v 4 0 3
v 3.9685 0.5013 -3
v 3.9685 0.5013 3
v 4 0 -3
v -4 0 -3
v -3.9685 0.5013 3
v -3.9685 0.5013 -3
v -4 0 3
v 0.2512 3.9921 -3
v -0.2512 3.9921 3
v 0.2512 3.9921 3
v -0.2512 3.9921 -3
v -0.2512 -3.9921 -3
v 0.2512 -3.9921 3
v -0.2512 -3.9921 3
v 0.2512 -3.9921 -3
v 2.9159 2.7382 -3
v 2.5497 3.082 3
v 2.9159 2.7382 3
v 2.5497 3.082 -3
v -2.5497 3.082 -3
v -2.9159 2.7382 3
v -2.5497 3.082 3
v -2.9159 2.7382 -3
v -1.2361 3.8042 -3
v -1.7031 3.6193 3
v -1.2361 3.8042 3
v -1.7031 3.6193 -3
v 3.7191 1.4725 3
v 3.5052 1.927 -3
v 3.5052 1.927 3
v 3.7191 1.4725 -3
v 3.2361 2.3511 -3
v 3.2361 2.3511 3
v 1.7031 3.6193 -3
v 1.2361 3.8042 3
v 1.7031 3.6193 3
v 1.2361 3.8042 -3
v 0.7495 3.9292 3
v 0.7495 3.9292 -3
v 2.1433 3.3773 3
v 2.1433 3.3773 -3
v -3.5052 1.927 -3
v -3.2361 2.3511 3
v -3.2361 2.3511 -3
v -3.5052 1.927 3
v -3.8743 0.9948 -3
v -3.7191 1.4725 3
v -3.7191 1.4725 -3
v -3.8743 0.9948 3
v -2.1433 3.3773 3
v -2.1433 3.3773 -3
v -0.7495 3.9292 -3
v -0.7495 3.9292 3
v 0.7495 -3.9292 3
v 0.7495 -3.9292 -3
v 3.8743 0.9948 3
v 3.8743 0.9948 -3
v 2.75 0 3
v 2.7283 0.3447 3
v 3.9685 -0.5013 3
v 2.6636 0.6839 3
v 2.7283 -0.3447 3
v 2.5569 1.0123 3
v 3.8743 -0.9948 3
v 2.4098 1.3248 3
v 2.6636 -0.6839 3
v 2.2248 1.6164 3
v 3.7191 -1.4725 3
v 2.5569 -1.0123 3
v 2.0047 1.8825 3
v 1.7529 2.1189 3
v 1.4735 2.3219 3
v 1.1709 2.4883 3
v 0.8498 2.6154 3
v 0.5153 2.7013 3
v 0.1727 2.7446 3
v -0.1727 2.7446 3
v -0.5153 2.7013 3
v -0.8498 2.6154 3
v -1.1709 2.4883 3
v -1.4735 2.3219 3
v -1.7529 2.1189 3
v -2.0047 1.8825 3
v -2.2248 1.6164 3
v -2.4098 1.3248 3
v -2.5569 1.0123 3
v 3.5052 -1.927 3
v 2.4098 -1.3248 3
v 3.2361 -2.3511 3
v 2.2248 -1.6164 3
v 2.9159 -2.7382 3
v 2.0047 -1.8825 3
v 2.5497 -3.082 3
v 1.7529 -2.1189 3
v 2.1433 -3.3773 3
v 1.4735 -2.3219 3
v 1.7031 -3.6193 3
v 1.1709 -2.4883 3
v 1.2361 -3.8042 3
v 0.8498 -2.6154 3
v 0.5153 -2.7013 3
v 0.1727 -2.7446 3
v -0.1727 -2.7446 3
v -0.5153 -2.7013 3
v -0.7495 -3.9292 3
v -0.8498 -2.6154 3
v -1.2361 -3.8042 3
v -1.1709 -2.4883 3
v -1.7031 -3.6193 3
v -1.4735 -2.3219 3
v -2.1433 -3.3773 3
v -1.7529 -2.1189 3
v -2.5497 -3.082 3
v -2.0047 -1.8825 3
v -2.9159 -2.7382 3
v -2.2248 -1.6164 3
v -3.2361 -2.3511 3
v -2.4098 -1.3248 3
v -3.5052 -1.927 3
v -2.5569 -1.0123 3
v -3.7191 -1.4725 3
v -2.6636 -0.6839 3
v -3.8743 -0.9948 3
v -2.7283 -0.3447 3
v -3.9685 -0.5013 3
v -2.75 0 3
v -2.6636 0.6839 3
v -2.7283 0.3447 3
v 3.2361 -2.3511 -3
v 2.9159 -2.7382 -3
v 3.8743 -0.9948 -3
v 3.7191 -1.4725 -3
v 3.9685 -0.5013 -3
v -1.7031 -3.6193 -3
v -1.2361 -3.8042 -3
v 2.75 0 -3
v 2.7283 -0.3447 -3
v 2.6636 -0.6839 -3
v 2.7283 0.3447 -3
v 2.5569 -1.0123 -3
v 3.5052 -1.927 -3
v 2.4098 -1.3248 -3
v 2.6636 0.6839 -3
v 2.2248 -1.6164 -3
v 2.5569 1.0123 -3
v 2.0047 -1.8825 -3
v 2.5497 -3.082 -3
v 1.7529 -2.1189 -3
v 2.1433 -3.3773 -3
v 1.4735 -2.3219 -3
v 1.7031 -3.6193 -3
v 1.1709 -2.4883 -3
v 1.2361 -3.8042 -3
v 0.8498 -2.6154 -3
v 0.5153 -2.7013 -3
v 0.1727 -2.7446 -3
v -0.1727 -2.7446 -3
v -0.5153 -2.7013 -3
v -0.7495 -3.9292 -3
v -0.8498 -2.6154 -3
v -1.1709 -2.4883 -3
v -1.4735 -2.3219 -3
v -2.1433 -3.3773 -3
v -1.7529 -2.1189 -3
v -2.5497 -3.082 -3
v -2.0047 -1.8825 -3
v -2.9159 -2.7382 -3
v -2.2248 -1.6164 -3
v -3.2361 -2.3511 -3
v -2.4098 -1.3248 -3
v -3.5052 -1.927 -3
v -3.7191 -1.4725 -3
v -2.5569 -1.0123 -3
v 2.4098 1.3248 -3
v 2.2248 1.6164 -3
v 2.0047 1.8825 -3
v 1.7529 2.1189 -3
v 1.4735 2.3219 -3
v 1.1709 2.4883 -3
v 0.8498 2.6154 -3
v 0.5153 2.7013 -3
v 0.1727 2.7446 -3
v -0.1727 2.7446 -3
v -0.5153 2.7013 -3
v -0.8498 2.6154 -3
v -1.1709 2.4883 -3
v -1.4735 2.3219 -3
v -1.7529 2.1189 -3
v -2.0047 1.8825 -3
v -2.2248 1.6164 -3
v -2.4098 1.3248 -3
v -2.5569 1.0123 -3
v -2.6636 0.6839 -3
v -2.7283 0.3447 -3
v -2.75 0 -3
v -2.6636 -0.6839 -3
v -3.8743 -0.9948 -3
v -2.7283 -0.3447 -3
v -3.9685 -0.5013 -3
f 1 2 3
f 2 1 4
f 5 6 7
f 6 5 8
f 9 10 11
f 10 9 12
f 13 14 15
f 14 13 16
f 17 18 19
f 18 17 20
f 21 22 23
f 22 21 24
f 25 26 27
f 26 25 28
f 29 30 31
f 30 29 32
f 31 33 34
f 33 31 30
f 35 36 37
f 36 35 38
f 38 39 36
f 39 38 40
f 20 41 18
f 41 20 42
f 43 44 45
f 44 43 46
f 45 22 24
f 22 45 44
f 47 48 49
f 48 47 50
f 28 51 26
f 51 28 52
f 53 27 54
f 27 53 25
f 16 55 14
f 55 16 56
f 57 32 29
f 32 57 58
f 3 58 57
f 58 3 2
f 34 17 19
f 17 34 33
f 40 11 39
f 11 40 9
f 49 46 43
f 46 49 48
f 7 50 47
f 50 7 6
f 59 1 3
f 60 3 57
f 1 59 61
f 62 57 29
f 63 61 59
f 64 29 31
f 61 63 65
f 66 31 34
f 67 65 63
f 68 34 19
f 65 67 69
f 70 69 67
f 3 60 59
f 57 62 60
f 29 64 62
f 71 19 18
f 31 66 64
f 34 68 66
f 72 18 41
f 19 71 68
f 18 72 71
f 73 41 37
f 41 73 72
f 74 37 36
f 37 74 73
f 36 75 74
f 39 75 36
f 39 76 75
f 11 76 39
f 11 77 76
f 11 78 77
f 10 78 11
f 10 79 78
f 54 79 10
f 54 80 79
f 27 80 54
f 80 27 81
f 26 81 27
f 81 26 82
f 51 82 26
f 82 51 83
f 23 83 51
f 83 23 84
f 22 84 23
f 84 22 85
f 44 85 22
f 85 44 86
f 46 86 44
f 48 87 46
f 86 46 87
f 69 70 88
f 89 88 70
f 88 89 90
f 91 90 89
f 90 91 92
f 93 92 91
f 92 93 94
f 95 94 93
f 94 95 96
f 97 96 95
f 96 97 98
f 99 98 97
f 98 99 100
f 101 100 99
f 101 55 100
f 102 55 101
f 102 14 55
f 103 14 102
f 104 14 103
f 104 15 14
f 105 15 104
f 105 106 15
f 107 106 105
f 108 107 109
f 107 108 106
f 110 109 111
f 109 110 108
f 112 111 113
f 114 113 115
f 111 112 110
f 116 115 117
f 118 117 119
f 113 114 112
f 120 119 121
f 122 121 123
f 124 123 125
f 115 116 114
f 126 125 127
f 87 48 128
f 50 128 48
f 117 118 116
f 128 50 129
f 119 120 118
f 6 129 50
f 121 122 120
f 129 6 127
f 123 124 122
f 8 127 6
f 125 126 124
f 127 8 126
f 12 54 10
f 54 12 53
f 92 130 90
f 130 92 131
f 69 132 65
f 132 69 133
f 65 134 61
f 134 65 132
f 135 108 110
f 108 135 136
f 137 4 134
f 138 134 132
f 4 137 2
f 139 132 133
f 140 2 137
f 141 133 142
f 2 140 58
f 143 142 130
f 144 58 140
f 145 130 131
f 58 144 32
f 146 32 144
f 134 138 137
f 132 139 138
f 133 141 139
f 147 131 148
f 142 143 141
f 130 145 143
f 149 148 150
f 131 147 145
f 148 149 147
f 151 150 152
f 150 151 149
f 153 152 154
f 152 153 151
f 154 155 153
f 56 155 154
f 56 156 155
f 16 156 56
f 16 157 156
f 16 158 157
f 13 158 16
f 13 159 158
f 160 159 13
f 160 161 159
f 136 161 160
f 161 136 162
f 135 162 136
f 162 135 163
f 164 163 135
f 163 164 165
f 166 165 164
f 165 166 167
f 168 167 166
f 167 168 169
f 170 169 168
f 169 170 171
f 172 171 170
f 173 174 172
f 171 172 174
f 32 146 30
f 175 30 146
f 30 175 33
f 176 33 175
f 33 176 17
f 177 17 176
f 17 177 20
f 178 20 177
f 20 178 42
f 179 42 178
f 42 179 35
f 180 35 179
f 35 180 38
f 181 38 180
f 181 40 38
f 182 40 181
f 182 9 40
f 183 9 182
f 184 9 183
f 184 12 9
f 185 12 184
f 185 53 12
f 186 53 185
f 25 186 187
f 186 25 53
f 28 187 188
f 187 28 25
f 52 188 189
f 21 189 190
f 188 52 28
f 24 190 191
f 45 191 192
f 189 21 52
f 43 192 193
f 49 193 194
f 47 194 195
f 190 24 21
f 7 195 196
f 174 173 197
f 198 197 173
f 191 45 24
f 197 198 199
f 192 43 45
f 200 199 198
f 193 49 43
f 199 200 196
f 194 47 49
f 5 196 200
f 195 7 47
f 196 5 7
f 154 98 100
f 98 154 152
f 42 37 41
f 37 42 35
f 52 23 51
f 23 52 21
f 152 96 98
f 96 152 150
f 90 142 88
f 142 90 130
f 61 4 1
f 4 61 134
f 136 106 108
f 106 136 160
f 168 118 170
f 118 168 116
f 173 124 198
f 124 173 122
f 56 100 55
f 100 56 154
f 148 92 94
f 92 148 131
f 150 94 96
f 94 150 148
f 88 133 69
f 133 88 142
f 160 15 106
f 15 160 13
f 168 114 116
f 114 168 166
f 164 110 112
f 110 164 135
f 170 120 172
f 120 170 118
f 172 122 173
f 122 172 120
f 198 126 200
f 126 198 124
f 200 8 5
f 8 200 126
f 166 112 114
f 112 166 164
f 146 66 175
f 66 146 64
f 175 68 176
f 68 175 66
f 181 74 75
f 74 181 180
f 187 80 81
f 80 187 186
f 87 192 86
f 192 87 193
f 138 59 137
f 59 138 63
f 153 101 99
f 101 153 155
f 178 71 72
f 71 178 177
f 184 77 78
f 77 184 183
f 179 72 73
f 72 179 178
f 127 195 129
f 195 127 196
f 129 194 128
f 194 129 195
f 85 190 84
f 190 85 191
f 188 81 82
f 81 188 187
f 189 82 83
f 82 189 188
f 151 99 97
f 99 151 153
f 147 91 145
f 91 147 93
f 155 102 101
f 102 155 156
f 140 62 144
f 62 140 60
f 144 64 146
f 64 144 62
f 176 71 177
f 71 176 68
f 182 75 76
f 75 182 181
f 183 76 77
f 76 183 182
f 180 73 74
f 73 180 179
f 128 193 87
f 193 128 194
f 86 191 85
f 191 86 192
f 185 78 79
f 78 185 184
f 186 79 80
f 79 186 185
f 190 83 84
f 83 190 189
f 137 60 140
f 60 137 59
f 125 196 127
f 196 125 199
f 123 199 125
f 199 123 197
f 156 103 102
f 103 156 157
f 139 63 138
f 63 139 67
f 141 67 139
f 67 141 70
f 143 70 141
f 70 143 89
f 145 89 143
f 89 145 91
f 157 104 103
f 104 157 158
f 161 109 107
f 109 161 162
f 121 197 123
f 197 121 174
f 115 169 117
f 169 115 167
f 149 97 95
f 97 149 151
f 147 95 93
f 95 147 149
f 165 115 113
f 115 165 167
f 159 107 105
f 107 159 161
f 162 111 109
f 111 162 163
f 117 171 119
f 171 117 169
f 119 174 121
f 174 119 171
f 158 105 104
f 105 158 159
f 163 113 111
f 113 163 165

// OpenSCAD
$fn = 50;


difference() {
	union() {
		translate(v = [0, 0, -3.0000000000]) {
			cylinder(h = 6, r = 4.0000000000);
		}
	}
	union() {
		translate(v = [0, 0, -100.0000000000]) {
			cylinder(h = 200, r = 2.7500000000);
		}
	}
}
